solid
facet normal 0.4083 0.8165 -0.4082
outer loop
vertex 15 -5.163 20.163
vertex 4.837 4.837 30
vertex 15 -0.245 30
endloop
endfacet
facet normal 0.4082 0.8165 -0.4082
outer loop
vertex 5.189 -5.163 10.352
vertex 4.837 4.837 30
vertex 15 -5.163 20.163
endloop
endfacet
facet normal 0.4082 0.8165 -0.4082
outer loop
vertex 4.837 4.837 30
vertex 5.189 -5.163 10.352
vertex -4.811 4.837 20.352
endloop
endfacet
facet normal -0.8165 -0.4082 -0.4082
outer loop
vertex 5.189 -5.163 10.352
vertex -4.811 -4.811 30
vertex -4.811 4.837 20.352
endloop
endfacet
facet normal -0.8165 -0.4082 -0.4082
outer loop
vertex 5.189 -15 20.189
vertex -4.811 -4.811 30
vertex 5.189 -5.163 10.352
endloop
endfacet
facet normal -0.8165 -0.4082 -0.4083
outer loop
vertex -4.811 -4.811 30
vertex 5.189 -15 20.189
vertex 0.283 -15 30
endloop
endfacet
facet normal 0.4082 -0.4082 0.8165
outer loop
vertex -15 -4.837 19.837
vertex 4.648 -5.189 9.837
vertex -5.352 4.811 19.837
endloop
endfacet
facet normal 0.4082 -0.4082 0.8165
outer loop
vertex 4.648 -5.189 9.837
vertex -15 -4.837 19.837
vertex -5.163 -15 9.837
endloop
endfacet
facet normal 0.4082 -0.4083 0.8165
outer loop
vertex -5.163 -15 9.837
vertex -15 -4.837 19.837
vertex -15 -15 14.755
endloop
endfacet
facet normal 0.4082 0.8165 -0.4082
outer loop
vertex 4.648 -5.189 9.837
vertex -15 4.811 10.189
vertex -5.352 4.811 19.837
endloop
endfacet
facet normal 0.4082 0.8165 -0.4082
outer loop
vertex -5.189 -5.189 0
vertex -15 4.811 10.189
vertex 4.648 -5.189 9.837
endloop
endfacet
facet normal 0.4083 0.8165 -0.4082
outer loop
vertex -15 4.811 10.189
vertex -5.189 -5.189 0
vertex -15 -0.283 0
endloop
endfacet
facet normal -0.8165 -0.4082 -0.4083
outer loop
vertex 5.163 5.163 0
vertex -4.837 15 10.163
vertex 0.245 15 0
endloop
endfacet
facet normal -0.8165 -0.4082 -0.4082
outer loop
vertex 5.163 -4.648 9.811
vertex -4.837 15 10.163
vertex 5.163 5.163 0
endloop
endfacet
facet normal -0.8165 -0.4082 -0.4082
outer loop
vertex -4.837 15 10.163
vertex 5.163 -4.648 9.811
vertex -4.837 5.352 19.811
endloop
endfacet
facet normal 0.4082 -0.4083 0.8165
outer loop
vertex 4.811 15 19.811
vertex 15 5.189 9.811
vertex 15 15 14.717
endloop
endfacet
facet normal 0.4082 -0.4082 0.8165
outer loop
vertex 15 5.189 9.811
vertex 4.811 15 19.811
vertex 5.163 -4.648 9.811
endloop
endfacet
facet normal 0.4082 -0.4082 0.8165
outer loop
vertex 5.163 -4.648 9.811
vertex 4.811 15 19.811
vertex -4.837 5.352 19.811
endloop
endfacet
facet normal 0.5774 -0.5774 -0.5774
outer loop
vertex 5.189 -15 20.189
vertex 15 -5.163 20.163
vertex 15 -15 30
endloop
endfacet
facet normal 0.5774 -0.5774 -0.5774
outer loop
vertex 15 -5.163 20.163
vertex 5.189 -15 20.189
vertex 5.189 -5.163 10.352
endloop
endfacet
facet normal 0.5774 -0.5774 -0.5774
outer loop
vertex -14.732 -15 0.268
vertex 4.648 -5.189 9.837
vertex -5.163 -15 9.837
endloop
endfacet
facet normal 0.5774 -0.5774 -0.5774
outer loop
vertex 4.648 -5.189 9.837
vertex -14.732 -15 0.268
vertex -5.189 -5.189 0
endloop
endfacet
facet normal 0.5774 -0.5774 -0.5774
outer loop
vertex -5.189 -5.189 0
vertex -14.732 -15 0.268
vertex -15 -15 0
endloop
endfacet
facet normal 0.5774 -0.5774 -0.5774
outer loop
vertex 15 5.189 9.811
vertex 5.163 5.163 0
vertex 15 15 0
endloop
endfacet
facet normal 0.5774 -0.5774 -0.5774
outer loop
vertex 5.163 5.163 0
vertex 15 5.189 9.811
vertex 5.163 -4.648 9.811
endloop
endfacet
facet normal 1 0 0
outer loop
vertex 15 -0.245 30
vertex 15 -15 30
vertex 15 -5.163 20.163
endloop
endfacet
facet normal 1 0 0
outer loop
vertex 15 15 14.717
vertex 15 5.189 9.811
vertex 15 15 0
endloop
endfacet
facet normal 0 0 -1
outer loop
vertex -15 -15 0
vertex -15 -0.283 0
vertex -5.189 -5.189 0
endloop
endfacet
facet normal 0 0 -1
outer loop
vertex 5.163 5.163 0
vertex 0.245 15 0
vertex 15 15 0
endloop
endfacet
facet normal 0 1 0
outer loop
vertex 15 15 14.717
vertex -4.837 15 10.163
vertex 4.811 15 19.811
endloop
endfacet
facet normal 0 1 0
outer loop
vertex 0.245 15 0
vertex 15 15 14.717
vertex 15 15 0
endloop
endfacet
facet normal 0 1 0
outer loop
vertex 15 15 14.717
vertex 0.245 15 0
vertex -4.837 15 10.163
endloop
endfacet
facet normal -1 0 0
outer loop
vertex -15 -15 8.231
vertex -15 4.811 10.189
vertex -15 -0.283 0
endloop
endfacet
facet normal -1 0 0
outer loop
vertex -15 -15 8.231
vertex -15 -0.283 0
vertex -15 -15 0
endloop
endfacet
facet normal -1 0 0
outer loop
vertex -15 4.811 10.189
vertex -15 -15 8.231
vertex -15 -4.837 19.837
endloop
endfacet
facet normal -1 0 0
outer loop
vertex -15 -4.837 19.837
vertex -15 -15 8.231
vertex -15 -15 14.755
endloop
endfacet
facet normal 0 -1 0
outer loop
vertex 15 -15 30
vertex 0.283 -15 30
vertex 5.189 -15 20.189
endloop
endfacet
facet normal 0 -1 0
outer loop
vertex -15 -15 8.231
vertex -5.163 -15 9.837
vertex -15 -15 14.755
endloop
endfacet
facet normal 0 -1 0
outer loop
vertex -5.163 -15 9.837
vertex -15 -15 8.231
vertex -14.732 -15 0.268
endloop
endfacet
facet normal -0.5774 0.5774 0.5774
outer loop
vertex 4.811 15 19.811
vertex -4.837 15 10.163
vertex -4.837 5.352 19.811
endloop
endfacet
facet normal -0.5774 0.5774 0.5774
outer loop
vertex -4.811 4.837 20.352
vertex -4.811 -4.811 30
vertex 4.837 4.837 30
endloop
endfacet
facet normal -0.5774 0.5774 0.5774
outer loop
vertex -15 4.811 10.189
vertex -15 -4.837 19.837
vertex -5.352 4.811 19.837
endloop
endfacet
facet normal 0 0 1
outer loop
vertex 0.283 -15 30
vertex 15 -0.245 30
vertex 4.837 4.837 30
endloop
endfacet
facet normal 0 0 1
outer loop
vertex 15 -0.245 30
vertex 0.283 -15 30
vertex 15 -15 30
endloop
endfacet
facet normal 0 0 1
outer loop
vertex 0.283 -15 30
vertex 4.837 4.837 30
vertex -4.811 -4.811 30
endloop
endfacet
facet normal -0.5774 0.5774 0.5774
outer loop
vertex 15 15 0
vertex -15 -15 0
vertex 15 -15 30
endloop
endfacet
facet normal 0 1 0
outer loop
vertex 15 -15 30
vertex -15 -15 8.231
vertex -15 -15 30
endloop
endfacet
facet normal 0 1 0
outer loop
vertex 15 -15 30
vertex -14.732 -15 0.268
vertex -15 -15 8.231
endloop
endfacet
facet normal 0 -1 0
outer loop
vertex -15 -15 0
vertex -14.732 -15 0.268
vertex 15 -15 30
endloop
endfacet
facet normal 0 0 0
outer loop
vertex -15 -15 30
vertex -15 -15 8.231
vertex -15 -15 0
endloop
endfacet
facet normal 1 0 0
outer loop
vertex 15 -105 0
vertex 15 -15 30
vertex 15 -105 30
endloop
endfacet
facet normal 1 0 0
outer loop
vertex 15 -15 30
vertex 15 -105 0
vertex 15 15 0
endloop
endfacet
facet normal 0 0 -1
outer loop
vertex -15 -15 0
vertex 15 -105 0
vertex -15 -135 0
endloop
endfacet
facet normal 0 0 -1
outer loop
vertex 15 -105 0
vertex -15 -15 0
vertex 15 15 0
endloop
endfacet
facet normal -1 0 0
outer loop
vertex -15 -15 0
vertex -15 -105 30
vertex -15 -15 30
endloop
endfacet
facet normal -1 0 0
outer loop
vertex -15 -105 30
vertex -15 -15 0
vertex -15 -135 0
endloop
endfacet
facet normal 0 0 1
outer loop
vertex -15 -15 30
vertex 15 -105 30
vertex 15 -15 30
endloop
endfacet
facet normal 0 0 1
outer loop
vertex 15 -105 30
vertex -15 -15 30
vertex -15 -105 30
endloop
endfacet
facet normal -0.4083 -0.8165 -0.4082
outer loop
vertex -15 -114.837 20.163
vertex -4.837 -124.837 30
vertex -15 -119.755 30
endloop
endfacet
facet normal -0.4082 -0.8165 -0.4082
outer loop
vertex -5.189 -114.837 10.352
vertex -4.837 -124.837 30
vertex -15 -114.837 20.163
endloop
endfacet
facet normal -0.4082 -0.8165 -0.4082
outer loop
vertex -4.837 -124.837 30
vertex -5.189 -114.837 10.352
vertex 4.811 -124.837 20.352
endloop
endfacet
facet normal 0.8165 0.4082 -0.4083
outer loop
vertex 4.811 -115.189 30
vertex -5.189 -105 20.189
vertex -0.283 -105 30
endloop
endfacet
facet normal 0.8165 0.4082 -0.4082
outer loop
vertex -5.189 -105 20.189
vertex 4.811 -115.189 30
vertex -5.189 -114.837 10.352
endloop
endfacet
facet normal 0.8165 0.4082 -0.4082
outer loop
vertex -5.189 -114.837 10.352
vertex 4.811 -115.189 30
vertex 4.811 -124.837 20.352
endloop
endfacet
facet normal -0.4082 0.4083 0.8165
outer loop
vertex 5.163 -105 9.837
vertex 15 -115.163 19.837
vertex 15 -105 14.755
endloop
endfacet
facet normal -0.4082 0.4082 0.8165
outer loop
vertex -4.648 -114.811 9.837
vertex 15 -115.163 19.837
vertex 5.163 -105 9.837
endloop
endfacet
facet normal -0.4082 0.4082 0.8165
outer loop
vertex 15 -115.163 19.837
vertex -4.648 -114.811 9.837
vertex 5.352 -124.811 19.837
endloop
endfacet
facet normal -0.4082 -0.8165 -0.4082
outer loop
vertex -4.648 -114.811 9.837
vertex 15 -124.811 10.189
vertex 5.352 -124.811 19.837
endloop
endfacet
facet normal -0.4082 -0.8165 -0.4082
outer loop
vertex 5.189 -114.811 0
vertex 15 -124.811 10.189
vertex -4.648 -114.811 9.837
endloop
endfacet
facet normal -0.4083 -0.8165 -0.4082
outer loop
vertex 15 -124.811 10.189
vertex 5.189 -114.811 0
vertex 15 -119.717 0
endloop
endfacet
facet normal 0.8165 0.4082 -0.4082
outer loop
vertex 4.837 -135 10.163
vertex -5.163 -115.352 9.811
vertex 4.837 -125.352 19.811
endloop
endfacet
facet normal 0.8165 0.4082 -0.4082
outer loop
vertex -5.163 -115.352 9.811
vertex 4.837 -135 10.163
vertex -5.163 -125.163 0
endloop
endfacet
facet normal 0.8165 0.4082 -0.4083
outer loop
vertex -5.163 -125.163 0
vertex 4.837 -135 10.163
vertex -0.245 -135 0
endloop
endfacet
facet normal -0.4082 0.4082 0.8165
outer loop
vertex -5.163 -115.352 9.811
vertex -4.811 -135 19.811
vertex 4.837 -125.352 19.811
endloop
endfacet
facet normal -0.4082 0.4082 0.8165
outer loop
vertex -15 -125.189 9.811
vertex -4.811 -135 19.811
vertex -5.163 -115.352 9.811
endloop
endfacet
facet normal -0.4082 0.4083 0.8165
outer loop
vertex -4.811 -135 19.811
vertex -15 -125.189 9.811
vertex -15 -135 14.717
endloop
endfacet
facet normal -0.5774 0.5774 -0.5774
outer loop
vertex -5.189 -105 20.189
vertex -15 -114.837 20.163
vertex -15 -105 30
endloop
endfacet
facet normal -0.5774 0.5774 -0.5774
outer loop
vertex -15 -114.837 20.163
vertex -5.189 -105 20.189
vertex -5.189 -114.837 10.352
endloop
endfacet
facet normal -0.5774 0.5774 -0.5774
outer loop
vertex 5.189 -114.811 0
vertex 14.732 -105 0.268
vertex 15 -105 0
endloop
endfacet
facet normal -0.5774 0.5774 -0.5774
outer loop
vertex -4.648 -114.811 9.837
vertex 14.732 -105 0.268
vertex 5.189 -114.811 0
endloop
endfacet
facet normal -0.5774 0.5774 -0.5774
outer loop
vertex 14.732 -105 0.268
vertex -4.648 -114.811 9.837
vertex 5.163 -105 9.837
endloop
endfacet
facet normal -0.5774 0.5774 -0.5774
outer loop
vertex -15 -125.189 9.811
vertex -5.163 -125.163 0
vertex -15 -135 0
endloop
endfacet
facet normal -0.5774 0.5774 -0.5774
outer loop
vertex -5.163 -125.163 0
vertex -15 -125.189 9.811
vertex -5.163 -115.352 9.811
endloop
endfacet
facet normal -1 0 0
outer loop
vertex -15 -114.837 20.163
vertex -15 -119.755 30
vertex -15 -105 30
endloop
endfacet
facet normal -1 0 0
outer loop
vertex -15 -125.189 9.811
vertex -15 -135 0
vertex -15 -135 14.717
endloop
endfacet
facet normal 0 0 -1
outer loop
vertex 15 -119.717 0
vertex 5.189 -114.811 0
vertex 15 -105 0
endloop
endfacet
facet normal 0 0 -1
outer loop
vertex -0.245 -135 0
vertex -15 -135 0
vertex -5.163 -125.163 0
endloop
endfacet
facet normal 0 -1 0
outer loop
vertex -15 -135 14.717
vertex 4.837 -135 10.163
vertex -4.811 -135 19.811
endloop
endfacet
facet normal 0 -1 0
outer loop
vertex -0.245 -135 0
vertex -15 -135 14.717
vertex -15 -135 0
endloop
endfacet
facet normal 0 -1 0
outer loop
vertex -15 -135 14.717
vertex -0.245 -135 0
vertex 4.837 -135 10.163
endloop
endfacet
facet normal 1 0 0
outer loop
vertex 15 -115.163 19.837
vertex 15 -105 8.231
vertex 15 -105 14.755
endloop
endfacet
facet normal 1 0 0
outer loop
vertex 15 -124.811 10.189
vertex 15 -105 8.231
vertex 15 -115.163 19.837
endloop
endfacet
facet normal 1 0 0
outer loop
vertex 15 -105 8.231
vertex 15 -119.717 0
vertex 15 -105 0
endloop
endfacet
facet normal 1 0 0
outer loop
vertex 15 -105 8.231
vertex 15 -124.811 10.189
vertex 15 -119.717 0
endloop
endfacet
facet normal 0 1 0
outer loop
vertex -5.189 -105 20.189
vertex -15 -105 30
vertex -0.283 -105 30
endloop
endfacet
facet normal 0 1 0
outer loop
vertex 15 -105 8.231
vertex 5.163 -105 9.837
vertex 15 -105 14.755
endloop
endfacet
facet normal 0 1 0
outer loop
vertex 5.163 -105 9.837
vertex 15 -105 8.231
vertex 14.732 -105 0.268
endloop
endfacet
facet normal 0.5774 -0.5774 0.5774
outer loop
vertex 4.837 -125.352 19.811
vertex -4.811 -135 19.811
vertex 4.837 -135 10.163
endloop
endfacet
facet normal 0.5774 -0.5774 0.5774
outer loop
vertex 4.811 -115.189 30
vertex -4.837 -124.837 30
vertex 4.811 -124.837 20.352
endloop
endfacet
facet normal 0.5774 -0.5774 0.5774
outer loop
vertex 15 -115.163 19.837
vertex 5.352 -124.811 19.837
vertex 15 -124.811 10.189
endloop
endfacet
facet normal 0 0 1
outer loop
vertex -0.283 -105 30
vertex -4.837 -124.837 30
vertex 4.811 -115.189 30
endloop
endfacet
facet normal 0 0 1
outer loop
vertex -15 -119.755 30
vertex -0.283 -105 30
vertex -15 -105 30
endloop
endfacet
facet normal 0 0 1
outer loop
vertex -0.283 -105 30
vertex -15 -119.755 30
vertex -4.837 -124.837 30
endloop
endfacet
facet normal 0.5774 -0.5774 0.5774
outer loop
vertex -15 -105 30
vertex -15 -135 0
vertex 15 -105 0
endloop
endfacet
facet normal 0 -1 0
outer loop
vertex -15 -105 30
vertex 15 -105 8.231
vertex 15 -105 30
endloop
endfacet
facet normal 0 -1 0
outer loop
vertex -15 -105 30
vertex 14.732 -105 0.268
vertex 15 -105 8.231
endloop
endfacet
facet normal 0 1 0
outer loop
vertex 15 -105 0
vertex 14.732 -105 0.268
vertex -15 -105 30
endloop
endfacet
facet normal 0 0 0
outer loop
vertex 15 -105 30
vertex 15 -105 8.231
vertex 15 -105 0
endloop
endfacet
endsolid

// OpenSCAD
// 3d model of Matthias Wandel's clever 3-way joint

joint_size = 30;
js = joint_size;
tol = 0.2;
length = 60;

diag = joint_size * sqrt(2);

joint_3way_rtp(length);
translate([0, -length*2, 0])
rotate([0, 0, 180])
joint_3way_rtp(length);

module cylinder_slice(dia, height, angle, tol=0) {
  difference() {
    cylinder(d=dia, h=height);
    translate([-dia/2-1,-tol,-1]) cube(dia+2);
    translate([0,-2*dia+1,-1]) cube(2*dia);
    rotate(-(90-angle)) translate([-tol/sin(angle),-2*dia+1,-1]) cube(2*dia);
  }
}
/*for (a = [0:2*60:360]) rotate(a) cylinder_slice(50,20,60);*/

module joint_3way() {
  angle = atan(2*js/diag);
  polyhedron(points=[[-js/2, js/2, js/2], [js/2, -js/2, js/2], [-js/2, -js/2, -js/2], [-js/2, -js/2, js/2]], faces=[[0,2,1],[0,1,3],[1,2,3],[0,3,2]]);
  rotate([0,0,-45]) rotate([angle,0,0]) intersection() {
    rotate([-angle,0,0]) rotate([0,0,45]) polyhedron(points=[[-js/2, js/2, js/2], [js/2, -js/2, js/2], [-js/2, -js/2, -js/2], [-js/2, js/2, -js/2], [js/2, -js/2, -js/2], [js/2, js/2, js/2]], faces=[[0,1,2],[3,4,5], [0,5,1], [2, 4, 3], [0,2,3], [1,4,2], [1,5,4], [0,3,5]]);
    rotate(60) for (a = [0:2*60:360]) rotate(a) translate([0,0,-js/2]) cylinder_slice(diag*3/2,js,60, tol);
  }
}
/*joint_3way();*/

module joint_3way_assembled(attached=false) {
  joint_3way();
  rotate([-90,0,0]) rotate(180) joint_3way();
  if ((attached=="perpendicular")||(attached=="right")) {
    translate([0,-(4*js+js)/2,0]) cube([js, 4*js, js], center=true);
    rotate((attached=="right"?0:-90)) translate([0,(4*js+js)/2,0]) cube([js, 4*js, js], center=true);
  }
}
/*joint_3way_assembled();*/
/*joint_3way_assembled("right");*/
/*joint_3way_assembled("perpendicular");*/

module joint_3way_rtp(length) {
  translate([0,0,js/2]) rotate([0,180,0]) {
    joint_3way();
    translate([0,-(length+js)/2,0]) cube([js, length, js], center=true);
  }
}
